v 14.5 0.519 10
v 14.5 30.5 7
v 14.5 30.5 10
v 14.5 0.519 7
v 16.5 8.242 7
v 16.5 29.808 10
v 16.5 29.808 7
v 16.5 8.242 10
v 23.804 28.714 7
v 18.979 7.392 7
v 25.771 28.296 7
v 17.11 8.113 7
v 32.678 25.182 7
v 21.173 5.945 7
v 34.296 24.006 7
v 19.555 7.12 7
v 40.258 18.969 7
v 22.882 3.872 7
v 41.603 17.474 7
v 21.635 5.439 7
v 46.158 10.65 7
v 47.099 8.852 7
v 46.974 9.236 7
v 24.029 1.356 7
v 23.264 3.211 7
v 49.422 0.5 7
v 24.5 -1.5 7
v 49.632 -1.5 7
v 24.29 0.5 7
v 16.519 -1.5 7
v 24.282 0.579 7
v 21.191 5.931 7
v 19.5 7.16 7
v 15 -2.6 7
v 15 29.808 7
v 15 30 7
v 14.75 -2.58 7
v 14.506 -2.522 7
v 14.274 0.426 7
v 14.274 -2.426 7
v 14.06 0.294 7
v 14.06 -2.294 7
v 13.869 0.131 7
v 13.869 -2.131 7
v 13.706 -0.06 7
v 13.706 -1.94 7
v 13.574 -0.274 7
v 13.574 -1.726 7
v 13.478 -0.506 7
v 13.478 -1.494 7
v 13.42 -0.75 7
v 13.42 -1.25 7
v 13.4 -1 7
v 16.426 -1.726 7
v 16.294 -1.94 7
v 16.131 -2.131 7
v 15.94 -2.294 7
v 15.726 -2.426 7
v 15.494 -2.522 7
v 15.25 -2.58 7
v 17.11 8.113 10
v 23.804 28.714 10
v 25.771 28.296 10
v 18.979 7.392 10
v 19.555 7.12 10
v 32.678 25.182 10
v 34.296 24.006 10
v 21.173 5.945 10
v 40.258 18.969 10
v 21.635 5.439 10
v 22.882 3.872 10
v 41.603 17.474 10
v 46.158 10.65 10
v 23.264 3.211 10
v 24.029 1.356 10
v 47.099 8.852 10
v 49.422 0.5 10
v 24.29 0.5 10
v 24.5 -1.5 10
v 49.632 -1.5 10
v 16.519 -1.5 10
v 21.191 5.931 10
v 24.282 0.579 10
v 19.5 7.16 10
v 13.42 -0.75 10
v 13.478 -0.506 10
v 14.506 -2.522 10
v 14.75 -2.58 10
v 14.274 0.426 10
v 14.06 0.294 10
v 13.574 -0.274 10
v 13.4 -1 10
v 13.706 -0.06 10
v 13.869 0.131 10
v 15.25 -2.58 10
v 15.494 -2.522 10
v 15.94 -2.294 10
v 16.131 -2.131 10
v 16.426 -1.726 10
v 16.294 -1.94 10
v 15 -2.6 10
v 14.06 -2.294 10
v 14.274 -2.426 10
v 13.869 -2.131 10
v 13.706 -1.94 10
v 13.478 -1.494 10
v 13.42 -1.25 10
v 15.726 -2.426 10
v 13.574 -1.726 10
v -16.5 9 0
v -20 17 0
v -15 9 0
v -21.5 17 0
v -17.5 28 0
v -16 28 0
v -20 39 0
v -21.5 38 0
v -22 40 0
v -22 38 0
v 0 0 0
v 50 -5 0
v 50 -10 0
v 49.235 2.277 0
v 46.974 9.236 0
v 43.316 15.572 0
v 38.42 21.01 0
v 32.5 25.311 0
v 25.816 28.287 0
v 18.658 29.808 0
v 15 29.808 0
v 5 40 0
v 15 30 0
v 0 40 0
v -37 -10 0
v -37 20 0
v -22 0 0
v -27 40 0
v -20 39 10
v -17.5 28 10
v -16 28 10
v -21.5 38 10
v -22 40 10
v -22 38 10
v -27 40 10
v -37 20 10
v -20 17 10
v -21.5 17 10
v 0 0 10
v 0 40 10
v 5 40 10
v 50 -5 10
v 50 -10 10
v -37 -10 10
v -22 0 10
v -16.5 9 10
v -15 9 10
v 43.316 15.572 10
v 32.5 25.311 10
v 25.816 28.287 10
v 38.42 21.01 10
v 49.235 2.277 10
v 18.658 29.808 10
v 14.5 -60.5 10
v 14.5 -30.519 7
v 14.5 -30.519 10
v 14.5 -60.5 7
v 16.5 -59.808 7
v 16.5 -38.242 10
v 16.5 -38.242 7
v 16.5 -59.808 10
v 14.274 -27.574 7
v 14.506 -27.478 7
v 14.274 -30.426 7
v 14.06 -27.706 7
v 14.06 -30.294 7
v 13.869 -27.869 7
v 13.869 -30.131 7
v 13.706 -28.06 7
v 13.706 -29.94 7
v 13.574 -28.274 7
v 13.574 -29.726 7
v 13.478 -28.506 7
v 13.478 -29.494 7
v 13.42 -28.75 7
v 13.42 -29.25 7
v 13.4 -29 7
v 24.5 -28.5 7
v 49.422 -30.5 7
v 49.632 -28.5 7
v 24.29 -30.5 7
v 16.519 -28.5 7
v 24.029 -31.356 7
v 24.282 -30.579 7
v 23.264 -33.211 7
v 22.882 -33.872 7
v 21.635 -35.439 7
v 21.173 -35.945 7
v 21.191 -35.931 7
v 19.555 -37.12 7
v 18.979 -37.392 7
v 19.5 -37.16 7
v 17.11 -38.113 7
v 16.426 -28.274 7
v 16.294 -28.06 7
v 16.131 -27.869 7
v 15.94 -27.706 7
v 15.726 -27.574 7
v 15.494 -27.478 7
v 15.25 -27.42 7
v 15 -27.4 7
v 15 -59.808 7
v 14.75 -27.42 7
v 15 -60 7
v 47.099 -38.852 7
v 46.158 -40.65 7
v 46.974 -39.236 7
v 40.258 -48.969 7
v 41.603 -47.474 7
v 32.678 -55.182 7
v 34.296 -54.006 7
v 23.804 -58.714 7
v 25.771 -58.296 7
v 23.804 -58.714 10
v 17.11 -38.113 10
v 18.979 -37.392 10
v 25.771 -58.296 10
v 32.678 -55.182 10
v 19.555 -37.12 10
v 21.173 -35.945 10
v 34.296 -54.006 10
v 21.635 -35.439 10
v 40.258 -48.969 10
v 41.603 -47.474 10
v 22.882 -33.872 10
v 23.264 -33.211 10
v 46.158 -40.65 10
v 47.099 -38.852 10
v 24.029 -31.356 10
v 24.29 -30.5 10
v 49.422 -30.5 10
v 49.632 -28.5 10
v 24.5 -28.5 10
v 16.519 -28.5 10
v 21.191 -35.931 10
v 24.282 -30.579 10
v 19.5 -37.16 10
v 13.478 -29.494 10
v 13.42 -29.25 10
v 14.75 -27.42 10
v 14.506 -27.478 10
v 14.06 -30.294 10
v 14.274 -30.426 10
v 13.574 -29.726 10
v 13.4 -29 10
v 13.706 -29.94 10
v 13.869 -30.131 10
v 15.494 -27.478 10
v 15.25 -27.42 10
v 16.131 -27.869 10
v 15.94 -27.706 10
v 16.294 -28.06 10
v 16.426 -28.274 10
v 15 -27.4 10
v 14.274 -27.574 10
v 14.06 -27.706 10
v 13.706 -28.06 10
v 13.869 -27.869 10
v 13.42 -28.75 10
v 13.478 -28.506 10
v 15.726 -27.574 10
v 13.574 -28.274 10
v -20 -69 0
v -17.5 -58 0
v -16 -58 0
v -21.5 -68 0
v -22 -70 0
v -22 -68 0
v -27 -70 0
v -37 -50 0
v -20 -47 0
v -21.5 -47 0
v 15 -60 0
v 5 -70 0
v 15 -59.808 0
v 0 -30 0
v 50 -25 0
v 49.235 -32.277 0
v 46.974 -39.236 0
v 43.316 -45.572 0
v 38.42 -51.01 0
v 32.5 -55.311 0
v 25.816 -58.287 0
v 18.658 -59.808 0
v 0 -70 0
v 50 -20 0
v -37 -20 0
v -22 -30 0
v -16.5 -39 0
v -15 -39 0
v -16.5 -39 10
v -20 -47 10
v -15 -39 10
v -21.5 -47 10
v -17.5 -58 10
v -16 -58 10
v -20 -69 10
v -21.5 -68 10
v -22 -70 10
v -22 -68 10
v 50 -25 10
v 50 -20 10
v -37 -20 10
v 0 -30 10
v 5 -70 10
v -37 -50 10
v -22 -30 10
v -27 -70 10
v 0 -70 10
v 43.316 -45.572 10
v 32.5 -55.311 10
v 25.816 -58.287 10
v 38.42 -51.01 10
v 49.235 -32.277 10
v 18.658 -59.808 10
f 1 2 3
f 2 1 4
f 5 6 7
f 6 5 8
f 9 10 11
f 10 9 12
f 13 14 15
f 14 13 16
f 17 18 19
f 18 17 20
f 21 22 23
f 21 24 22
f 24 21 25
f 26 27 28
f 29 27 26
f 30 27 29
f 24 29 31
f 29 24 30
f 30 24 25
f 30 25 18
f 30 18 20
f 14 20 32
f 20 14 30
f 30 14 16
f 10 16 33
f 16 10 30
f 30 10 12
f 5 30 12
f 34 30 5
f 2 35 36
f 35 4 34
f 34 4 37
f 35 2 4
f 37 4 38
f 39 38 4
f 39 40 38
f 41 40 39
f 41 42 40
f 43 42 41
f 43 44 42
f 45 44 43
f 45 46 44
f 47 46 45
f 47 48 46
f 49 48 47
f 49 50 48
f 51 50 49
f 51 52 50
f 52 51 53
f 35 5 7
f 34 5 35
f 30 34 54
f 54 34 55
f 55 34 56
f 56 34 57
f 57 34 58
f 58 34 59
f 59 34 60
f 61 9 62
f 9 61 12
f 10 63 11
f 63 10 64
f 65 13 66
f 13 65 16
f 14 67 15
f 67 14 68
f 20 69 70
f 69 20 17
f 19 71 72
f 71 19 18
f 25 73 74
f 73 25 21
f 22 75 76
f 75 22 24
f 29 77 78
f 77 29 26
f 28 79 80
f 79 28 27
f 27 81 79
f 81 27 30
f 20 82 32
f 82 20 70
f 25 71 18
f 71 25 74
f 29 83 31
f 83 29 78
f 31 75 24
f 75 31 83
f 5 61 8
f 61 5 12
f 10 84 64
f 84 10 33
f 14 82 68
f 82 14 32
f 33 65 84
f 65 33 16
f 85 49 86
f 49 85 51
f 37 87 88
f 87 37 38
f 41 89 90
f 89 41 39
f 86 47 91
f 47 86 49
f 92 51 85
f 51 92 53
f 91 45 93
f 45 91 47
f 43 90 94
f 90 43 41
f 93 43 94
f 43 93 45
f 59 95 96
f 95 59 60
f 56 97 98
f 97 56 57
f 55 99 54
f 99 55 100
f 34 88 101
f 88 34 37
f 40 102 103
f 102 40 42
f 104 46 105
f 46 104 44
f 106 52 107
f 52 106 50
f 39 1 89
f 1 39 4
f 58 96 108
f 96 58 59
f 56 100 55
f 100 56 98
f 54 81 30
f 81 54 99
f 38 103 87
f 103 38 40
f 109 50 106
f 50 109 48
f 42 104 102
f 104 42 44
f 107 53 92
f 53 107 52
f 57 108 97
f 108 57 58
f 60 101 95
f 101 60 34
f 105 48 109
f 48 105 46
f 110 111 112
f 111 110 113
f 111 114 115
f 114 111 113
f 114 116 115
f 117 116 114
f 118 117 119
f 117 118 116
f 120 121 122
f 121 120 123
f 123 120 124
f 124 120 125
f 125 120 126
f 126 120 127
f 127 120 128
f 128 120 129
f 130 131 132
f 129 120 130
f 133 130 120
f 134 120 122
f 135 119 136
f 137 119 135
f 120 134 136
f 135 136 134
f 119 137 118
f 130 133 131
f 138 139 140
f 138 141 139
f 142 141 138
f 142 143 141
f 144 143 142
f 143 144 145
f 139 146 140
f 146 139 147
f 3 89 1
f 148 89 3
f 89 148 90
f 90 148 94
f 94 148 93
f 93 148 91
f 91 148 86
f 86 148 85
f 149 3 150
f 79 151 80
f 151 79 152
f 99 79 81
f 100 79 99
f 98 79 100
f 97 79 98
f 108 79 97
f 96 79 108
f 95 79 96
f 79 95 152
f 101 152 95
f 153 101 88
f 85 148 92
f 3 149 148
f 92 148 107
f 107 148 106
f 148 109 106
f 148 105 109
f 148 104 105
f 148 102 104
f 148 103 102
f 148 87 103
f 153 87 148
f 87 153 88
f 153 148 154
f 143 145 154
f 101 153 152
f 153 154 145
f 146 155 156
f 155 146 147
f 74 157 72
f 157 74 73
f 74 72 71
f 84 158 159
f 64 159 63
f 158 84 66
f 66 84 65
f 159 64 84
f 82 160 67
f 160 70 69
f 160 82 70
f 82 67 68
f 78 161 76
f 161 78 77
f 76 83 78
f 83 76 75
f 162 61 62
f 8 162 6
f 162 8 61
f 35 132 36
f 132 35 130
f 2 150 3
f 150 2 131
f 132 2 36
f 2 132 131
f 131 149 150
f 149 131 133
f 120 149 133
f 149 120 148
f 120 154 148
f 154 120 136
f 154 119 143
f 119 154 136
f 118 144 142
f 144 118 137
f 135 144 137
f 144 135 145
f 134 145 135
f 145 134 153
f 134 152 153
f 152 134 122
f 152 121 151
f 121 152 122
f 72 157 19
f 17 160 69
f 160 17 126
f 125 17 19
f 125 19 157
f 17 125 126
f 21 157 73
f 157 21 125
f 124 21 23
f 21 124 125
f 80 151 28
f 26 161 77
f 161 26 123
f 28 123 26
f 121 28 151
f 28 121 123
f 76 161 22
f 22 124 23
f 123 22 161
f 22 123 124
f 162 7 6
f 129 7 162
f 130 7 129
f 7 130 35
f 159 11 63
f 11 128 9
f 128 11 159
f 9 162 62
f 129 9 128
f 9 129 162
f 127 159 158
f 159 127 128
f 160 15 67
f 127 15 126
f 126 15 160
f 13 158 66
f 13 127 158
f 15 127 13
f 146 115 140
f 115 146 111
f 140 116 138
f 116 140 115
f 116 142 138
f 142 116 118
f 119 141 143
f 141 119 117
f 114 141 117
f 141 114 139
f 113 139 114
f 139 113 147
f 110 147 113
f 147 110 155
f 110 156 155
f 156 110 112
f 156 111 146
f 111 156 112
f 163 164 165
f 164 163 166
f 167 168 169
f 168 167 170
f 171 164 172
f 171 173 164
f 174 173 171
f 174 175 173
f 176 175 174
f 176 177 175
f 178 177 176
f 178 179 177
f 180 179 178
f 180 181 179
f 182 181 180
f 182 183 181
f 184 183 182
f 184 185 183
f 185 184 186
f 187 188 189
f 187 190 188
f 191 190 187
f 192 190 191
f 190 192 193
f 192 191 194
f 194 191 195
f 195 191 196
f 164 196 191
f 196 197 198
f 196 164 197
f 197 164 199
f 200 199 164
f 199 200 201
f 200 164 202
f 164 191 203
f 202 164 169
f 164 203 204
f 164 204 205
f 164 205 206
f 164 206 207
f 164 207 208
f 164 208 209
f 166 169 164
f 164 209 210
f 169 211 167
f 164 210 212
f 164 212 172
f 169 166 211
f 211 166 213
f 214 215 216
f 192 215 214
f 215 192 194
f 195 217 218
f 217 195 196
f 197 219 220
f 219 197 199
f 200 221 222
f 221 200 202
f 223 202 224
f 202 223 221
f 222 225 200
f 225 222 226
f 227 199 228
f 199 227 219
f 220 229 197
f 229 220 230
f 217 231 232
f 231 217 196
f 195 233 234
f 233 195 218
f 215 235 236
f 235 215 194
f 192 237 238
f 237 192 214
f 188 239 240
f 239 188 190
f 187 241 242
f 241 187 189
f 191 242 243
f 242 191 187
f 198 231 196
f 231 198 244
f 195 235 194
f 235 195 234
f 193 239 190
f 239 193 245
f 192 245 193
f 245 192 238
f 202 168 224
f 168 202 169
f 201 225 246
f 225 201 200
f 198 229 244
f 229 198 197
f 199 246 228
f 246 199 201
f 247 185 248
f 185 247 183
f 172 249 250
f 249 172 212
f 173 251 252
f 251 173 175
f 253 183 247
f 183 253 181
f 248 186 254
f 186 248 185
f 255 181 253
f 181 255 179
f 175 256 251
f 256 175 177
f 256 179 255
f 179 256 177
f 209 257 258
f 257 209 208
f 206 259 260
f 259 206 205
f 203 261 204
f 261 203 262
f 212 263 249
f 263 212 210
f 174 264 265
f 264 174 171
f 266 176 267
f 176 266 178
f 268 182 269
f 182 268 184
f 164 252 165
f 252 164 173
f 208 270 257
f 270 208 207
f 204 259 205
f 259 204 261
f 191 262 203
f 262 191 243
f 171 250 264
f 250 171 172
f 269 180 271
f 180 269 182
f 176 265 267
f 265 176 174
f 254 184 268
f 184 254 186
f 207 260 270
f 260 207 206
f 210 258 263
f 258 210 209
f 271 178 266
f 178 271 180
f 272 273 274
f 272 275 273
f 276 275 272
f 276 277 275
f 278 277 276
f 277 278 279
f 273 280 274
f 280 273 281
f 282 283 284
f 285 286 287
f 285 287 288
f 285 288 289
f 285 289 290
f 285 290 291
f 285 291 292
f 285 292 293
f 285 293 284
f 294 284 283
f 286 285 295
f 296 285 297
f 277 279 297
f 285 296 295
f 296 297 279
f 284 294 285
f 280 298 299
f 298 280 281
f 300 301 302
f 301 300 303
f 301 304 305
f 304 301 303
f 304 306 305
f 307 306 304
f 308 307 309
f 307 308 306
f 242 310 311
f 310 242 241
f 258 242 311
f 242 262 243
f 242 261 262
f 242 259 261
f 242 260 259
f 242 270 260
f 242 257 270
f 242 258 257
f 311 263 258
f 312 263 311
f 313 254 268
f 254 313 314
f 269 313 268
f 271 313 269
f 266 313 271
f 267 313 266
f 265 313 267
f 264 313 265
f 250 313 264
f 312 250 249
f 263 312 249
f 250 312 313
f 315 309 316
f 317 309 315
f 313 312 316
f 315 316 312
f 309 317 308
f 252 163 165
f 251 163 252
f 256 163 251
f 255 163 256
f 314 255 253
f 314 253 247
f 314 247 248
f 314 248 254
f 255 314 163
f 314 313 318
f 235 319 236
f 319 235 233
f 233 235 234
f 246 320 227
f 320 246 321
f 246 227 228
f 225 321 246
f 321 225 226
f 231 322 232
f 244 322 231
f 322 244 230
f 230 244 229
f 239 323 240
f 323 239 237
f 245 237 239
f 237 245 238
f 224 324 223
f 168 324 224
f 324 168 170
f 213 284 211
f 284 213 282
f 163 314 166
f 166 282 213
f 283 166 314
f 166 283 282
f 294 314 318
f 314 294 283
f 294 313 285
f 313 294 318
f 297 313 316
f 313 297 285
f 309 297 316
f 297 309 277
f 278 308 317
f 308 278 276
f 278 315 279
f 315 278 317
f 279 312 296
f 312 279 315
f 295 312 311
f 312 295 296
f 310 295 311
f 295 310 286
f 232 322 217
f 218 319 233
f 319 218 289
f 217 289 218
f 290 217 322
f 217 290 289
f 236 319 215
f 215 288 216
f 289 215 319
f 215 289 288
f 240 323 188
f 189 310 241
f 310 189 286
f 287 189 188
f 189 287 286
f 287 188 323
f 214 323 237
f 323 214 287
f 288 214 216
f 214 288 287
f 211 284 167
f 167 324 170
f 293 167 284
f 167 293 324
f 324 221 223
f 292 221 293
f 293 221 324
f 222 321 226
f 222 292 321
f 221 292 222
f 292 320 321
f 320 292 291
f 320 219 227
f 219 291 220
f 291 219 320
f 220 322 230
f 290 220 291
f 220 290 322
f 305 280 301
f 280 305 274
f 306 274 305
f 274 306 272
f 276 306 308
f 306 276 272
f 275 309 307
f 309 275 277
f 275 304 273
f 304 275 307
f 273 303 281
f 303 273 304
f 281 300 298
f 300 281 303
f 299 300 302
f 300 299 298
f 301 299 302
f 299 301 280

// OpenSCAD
// Solderingholder
// Author: Mariusz Czułada
// Version: 1.1
// Licence: CC-SA
//
// Version 1.2 by Mark Harrison
// made a main() module to make it easier to print a matched pair.
// Same license.
//

// CUSTOMIZE PARAMETERS:

// tabletop thickness
tt=18;
// element height
ht=10;

poly=[[0,0],[0,40],[5,40],[15,30],[15,-5],[50,-5],[50,-10],[-15-4-tt,-10],[-15-4-tt,20],
    [-5-4-tt,40],[-4-tt,40],[-4-tt,0]];

push=[[0,40],[2,39],[6,28],[2,17],[7,9],[5.5,9],[.5,17],[4.5,28],[.5,38],[0,38]];

// from: http://forum.openscad.org/Creating-pie-pizza-slice-shape-need-a-dynamic-length-array-td3148.html
module pie_slice(r,a) {
    $fn=30;
    intersection() {
        circle(r=r);
        square(r);
        rotate(a-90) square(r);
    }
}

module pusher() {
    linear_extrude(ht)
    polygon(push);
}

module main() {
    difference() {
        union() {
            linear_extrude(ht)
                polygon(poly);
            linear_extrude(ht)
                translate([15,-5,0]) pie_slice(35,90);
        }

        for(a=[0:90/5:90]) {
            translate([15,0,ht-3])
                rotate([0,0,-a])
                translate([-0.5,0,0])
                    cube([2,50,4.1]);
        }

        translate([14.5,-1.5,ht-3]) {
            linear_extrude(4.1) pie_slice(10,90);
            translate([.5,0.5,0]) cylinder(r=1.6,h=4.1,$fn=40);
        }
    }

    translate([-4-tt,0,0]) pusher();
}

module pair() {
    main();
    translate([0,-30,0]) rotate([0,0,180]) mirror([1,0,0]) main();
}

// main();
pair();
